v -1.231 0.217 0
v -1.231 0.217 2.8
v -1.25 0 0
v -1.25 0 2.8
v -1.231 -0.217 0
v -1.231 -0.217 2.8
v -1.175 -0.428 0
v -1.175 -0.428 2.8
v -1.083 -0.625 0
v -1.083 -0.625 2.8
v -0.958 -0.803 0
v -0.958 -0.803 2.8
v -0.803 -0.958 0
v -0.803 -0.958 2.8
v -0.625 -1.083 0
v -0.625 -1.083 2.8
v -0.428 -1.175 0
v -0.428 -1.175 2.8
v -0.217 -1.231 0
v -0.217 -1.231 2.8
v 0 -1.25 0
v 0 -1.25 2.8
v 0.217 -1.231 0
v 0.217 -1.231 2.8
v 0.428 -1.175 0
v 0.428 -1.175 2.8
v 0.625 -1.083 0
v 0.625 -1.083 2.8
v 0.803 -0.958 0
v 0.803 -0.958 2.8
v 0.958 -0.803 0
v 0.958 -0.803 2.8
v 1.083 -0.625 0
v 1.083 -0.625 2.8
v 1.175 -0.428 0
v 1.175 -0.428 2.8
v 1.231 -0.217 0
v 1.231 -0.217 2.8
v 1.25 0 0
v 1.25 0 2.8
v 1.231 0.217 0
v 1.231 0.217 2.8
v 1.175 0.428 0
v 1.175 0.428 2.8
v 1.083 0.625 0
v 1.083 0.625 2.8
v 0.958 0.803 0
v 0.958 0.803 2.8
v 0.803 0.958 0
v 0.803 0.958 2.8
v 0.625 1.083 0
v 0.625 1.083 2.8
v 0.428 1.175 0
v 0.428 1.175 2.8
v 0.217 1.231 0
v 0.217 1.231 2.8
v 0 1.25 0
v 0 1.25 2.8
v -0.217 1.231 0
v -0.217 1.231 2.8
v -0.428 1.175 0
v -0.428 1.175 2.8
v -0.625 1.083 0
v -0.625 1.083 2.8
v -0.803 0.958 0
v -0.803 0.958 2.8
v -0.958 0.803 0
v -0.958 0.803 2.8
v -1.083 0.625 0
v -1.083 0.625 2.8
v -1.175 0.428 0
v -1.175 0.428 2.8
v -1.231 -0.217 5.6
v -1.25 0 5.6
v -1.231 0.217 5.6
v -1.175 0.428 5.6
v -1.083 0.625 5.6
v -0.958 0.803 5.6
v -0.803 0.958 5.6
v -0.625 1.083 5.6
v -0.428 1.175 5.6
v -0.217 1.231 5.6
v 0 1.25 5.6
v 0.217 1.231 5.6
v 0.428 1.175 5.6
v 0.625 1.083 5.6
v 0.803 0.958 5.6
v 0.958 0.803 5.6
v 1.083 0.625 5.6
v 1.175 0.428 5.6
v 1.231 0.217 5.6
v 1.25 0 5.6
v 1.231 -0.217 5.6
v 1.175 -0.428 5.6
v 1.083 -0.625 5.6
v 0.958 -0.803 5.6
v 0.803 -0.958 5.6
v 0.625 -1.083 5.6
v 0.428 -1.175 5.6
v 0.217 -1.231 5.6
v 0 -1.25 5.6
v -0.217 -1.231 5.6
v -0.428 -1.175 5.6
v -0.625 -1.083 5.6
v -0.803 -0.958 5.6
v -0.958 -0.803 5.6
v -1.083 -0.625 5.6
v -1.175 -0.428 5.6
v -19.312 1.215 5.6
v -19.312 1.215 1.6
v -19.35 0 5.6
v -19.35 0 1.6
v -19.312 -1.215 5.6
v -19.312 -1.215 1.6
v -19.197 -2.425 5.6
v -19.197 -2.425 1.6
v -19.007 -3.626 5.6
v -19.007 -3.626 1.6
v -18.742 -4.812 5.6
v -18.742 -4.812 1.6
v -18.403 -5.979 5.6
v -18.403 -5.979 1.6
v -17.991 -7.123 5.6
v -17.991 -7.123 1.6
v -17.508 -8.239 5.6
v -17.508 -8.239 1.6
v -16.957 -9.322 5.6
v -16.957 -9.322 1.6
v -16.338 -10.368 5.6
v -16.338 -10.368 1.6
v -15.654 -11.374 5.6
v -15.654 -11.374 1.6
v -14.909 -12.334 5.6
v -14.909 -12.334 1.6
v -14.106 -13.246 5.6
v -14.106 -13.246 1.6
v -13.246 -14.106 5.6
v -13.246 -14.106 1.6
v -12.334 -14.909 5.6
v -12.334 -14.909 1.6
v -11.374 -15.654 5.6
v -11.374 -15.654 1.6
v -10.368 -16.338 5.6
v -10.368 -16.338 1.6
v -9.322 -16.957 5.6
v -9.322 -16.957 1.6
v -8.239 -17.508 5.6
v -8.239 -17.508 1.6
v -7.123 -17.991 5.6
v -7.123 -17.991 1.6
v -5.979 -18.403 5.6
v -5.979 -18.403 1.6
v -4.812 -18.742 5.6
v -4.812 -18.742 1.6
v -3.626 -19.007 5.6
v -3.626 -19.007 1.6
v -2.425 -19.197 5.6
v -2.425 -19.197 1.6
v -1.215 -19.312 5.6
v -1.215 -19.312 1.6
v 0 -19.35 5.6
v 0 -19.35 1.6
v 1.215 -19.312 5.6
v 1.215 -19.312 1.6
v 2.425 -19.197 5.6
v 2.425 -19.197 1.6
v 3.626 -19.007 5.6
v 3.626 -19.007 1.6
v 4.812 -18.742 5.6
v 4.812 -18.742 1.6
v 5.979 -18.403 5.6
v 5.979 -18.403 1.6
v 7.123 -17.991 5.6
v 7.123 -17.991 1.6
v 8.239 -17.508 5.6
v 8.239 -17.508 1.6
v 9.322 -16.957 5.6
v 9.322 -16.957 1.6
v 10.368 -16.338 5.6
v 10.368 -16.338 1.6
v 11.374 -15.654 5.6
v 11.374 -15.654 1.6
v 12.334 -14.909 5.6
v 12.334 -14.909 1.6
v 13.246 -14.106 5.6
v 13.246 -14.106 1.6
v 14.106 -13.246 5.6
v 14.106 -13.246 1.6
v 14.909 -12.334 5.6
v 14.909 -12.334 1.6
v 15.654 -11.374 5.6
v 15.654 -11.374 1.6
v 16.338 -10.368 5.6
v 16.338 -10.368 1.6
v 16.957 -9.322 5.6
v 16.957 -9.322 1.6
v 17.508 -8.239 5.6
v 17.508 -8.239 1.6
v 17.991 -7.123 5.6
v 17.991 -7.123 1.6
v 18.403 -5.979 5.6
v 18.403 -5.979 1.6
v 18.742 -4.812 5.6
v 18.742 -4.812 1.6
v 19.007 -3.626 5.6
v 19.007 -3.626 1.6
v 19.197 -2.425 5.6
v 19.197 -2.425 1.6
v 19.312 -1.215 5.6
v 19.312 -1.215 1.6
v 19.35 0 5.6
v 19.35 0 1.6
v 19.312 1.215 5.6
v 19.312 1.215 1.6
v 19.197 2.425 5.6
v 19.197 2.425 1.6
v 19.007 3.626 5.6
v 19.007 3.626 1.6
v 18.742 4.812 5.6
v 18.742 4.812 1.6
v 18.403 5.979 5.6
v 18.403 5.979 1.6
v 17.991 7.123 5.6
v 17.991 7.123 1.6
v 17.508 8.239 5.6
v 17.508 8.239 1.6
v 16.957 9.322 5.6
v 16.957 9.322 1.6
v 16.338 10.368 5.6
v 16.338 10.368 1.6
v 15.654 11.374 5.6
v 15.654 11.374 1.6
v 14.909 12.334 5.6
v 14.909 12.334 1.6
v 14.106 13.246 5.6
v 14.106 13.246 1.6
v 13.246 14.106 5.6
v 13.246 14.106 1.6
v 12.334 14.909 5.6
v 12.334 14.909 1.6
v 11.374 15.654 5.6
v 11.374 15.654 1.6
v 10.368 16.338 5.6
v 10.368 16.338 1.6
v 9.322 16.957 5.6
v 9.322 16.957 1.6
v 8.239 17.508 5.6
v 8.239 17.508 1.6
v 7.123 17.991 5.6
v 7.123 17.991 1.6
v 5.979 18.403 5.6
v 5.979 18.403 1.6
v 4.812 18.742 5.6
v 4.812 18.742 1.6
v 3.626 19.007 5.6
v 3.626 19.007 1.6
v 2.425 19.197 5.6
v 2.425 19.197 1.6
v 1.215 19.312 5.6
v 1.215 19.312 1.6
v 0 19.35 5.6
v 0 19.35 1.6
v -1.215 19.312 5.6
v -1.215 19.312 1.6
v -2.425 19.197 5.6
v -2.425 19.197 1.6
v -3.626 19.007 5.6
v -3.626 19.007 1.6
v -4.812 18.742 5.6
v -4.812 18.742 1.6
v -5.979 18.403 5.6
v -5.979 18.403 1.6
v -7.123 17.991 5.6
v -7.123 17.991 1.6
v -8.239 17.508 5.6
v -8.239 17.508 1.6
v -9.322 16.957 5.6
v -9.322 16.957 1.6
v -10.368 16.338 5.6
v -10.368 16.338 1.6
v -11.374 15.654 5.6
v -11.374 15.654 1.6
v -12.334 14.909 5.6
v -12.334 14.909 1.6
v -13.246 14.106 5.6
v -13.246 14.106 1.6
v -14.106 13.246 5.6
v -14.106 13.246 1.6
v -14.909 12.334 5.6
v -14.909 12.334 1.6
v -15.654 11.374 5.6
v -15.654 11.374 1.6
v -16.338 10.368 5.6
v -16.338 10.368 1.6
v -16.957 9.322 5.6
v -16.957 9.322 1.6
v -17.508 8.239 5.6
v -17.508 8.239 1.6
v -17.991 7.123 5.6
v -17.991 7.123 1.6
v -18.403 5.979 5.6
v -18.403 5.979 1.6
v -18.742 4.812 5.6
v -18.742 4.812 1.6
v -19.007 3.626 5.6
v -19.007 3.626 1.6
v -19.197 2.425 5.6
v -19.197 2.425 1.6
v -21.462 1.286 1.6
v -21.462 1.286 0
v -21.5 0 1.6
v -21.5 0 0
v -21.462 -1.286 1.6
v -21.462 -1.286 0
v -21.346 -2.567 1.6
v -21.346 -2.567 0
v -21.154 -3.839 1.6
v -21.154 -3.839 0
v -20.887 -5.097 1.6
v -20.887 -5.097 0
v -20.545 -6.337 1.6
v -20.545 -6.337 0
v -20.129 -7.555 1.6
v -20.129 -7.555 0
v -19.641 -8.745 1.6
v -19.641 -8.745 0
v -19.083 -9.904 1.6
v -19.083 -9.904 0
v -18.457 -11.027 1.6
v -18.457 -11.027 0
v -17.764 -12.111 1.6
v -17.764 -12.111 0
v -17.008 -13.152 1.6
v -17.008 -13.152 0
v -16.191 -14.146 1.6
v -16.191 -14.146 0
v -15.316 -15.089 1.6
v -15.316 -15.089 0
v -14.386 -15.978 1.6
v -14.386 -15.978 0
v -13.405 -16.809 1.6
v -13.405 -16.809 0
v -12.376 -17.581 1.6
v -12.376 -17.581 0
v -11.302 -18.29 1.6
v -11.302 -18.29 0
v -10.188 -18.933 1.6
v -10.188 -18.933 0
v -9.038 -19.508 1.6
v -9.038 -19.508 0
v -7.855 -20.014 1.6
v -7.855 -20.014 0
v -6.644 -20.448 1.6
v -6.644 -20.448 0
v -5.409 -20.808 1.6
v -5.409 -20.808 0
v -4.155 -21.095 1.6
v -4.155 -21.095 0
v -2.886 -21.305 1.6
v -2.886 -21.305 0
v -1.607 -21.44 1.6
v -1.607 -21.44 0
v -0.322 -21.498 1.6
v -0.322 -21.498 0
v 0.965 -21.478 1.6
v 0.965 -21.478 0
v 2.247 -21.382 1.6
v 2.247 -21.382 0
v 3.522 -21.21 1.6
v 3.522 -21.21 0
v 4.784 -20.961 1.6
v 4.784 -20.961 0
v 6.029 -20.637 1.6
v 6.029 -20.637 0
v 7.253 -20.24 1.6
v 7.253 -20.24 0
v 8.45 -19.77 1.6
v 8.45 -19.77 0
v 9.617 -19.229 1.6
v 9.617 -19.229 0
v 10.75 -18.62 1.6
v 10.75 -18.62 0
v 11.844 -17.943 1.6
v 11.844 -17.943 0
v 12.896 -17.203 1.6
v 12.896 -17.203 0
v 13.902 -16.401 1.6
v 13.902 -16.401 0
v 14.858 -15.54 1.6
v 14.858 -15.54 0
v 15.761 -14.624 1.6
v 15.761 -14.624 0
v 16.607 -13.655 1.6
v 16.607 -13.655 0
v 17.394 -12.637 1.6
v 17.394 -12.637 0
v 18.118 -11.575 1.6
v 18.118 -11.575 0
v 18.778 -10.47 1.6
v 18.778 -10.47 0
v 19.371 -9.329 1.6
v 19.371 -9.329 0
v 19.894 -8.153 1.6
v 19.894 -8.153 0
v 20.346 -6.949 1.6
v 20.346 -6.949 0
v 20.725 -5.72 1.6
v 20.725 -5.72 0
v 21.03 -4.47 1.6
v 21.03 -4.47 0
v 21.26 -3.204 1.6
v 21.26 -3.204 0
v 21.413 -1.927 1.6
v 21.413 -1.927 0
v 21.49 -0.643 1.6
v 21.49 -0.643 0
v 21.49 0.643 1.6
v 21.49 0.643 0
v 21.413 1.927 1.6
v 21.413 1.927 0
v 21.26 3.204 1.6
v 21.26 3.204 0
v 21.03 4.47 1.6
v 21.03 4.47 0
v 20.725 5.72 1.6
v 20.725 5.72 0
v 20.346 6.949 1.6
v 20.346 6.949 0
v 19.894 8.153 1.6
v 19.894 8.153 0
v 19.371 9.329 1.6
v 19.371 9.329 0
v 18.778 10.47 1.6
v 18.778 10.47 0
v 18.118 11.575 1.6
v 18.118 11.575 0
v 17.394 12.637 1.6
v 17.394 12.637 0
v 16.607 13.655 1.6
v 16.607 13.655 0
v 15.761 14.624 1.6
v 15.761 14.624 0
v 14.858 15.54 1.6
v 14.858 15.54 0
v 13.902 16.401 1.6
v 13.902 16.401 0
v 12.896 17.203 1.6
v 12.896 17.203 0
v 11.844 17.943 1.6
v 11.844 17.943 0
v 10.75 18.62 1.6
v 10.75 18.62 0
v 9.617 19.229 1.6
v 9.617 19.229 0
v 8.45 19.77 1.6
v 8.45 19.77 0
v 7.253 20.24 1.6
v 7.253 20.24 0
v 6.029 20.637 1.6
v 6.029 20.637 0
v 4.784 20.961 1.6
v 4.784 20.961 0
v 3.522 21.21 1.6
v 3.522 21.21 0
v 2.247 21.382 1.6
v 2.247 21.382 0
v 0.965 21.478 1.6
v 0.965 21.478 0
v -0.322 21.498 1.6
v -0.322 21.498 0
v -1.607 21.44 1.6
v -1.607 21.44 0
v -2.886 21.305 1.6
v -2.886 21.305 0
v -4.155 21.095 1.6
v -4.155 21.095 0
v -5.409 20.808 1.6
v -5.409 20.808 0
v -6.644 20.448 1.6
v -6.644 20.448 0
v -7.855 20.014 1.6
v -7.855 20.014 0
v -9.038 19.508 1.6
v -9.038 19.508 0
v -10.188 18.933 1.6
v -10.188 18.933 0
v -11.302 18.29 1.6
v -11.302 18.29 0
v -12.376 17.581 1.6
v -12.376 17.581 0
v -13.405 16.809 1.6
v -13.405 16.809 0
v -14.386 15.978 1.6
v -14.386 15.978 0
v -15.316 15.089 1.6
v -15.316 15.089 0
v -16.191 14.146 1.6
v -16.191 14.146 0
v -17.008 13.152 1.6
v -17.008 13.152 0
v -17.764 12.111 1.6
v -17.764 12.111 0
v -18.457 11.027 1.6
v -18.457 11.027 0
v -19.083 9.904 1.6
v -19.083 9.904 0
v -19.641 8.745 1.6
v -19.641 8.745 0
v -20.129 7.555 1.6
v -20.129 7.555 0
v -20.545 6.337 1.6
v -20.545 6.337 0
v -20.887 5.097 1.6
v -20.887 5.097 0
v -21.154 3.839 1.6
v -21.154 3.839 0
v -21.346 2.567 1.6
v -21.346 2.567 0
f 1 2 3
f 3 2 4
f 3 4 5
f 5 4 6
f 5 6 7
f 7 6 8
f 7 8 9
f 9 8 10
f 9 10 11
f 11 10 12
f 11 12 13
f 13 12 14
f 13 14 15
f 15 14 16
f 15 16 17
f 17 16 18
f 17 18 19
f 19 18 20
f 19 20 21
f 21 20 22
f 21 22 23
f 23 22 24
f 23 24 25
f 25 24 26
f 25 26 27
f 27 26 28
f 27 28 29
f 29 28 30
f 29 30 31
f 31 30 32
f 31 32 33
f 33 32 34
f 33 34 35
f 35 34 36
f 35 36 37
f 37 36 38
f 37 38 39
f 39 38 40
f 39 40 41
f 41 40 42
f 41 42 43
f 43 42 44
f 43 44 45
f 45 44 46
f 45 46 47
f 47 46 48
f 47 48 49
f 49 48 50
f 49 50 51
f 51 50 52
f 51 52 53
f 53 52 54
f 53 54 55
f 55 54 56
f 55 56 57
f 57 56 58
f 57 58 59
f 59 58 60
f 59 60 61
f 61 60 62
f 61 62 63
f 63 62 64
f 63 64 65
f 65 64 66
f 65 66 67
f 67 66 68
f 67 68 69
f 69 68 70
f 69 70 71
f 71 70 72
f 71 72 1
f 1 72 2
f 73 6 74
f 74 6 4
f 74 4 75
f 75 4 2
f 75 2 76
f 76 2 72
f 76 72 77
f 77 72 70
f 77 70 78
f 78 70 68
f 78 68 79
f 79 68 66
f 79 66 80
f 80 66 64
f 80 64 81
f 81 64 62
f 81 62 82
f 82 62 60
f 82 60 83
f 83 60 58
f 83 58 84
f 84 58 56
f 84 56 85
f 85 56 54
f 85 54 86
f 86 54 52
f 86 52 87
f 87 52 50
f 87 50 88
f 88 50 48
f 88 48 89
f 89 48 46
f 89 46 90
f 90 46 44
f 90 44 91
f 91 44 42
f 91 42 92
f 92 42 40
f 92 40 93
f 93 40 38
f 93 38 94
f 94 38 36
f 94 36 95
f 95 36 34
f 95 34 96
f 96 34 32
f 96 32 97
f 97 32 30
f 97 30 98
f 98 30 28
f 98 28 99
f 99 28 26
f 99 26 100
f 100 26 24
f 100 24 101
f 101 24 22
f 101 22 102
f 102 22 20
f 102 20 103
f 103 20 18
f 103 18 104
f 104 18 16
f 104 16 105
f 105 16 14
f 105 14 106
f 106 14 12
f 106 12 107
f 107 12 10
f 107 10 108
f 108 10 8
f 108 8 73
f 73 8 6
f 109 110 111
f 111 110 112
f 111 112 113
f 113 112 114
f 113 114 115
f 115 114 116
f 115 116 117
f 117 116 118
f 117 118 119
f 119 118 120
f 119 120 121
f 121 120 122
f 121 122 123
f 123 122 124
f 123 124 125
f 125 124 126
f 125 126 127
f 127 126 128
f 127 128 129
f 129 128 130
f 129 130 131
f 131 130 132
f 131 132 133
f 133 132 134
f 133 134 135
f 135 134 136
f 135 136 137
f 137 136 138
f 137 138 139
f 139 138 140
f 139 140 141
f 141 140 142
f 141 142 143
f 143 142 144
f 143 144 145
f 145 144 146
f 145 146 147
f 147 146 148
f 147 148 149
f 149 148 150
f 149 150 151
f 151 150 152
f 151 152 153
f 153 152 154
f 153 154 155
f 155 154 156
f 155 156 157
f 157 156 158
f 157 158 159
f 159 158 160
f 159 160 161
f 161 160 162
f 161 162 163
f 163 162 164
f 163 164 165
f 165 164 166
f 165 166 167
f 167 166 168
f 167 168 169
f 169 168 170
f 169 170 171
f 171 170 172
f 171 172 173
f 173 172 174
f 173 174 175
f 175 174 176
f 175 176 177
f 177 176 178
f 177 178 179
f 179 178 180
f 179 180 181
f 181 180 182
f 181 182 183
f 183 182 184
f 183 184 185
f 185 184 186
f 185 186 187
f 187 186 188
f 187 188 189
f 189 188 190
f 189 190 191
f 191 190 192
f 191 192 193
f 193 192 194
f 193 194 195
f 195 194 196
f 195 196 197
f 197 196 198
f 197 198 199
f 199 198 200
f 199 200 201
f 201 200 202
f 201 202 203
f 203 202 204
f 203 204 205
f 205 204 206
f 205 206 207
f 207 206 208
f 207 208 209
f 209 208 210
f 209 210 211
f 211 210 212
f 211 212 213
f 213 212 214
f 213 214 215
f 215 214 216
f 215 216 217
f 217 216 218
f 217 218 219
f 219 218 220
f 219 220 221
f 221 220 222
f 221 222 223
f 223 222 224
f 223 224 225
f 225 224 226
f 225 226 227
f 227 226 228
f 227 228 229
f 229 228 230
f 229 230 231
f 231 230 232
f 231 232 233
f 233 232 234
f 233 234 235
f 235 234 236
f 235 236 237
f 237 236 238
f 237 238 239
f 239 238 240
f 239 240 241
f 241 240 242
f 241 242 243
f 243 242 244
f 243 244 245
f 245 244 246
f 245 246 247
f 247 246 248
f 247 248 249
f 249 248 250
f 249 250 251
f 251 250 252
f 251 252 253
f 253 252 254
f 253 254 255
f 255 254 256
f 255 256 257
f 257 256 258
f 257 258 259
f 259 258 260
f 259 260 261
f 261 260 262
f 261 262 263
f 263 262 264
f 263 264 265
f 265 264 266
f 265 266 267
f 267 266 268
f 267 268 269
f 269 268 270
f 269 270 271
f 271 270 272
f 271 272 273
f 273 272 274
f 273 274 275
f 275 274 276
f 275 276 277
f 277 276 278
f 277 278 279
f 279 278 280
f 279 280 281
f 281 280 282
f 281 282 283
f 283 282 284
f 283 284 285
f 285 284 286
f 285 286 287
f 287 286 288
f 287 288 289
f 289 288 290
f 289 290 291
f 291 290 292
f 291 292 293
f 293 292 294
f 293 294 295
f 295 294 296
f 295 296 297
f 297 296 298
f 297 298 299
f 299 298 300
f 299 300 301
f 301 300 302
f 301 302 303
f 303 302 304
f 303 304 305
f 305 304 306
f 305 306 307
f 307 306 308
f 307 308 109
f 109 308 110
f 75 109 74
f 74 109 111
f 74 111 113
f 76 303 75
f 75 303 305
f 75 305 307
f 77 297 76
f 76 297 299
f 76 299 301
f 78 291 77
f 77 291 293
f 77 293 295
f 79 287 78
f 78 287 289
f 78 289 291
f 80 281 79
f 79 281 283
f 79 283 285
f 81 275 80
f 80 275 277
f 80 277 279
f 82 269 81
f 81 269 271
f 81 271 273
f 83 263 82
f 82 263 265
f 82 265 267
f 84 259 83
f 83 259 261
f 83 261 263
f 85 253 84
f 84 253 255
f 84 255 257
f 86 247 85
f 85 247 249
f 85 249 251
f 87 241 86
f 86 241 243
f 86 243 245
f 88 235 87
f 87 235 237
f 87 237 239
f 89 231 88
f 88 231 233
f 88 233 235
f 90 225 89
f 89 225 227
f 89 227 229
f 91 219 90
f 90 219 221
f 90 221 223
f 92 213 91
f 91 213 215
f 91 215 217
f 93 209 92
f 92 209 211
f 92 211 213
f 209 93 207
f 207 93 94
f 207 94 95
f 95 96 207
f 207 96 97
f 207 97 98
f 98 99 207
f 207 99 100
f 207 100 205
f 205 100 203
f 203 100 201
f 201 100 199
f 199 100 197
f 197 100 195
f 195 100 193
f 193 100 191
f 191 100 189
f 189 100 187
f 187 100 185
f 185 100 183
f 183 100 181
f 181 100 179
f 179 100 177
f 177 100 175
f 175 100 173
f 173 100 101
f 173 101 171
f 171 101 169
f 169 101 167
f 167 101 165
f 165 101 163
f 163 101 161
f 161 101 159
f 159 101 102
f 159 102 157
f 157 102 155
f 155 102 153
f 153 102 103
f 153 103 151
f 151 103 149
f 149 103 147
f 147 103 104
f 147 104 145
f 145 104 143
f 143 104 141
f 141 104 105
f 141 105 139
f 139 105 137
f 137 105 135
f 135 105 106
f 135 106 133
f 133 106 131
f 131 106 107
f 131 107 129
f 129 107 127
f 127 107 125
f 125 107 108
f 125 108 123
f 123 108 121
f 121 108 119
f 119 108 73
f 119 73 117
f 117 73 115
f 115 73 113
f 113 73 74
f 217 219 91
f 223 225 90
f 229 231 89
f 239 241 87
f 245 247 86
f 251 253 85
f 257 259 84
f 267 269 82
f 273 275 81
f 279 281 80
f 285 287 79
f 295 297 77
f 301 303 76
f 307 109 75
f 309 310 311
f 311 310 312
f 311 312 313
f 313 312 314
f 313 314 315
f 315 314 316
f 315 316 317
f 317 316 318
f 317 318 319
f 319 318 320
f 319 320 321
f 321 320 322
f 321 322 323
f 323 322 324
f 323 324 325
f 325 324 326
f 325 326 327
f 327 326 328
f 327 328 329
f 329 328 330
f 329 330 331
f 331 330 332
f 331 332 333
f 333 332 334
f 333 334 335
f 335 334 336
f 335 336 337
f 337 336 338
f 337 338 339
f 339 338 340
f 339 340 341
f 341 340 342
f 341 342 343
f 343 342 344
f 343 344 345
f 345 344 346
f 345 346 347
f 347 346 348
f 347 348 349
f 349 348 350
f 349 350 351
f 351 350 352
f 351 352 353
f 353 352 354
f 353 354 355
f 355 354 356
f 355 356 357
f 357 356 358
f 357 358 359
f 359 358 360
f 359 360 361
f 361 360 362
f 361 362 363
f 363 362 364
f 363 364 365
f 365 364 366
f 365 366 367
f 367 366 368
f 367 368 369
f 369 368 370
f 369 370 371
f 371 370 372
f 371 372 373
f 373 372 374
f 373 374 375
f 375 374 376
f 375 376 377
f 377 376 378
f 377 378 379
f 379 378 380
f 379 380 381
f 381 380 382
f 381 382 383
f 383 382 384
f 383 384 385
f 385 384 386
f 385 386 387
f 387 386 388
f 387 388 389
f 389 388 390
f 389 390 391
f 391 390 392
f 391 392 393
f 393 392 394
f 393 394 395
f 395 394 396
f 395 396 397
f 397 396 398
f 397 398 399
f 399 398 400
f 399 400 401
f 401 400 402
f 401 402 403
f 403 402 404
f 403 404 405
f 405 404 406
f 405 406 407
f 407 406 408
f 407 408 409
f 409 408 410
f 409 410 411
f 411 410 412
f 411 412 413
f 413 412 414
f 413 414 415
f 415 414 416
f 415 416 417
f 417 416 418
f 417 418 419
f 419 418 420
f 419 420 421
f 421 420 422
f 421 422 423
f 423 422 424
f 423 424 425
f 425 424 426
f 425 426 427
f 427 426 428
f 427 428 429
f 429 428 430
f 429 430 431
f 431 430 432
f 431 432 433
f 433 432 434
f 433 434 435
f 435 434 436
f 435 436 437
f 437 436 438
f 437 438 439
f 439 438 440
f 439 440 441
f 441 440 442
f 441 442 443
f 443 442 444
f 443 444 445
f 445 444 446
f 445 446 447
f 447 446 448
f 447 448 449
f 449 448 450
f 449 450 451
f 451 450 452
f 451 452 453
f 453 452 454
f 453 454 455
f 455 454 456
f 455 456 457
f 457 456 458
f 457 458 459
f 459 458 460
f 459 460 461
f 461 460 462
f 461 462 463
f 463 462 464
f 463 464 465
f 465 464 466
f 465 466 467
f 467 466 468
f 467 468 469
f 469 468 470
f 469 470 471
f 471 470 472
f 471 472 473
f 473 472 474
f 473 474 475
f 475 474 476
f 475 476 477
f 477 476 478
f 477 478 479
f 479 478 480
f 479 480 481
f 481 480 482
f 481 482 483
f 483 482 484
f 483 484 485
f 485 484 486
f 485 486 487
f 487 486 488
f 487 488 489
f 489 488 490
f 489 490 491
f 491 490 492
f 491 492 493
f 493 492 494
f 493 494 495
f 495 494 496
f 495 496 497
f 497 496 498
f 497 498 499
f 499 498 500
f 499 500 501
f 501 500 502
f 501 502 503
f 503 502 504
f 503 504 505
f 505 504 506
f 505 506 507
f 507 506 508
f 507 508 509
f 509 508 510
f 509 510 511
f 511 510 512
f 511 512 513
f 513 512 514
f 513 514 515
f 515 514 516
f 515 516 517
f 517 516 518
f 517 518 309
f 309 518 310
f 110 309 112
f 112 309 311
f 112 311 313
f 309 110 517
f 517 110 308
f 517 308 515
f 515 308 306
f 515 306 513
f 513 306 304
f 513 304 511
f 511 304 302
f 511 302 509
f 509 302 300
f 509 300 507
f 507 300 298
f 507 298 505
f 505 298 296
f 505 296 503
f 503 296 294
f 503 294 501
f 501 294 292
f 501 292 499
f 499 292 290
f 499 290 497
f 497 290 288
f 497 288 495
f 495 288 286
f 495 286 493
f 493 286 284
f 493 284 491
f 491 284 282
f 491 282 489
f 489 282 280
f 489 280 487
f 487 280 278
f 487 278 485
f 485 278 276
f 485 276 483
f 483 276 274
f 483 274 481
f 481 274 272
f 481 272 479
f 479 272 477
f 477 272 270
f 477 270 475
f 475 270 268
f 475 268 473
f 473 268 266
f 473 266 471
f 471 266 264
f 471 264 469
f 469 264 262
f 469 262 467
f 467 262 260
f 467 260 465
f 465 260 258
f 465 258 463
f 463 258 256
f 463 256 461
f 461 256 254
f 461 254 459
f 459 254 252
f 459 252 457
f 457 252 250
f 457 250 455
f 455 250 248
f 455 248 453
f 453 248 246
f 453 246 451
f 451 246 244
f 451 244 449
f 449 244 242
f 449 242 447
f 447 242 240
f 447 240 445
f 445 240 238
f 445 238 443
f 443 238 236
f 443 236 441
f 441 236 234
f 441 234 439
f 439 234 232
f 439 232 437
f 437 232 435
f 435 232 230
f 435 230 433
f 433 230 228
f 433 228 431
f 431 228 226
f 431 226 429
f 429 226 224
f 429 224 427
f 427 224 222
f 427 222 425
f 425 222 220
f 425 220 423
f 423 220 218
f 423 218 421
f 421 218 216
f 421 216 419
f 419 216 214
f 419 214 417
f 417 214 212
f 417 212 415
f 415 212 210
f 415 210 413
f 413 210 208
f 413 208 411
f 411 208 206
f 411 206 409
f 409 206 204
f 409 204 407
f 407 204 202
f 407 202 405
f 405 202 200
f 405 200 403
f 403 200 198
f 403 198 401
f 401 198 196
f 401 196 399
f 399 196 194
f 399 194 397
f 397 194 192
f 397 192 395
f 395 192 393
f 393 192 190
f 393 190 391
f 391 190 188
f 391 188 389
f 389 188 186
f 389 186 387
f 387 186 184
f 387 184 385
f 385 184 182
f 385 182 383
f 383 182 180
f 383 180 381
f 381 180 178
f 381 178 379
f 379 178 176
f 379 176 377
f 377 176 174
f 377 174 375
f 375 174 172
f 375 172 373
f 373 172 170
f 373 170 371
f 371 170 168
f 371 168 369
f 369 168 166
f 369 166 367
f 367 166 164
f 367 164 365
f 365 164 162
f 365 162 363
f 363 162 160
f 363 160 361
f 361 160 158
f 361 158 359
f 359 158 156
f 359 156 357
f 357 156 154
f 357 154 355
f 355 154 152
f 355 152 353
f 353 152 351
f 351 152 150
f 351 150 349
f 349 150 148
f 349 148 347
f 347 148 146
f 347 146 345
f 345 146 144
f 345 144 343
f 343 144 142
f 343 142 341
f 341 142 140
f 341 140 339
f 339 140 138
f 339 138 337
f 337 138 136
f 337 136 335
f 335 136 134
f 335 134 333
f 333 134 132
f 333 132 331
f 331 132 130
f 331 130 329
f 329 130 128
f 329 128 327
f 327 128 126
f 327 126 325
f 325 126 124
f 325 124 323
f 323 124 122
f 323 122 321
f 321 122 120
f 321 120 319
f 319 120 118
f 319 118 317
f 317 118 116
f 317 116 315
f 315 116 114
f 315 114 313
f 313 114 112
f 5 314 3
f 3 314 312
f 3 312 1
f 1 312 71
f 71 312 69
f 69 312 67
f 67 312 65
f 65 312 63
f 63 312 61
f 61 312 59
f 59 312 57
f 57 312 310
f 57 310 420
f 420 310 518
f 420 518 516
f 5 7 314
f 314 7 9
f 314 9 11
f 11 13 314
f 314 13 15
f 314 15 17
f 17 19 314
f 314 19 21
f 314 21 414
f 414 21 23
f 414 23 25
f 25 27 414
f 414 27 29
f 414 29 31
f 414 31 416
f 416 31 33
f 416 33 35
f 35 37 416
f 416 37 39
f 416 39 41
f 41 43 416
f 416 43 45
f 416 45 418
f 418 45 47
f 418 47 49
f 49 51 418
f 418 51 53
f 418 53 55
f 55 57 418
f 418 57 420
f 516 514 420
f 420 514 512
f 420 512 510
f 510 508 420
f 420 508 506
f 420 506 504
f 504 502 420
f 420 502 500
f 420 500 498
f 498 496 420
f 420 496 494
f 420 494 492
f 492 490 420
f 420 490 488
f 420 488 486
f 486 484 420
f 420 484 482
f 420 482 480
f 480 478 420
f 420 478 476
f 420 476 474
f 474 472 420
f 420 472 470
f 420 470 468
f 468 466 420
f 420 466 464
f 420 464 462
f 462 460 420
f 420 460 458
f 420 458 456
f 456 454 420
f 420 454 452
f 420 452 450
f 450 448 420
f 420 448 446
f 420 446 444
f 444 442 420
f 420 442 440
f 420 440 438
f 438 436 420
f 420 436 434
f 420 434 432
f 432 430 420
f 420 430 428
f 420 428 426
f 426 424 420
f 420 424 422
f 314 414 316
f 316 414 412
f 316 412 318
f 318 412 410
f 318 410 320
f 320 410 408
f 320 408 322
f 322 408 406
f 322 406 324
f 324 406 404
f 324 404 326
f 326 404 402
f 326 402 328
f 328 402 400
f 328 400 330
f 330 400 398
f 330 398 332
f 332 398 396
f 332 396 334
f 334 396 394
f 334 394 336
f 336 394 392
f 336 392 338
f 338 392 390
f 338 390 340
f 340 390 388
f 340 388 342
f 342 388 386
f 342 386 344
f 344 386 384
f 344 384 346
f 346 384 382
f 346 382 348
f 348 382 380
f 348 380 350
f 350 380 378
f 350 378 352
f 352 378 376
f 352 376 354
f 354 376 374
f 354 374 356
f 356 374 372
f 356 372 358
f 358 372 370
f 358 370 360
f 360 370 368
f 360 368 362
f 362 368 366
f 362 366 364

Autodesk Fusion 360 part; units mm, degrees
sketch "Flange" plane through (0, 0, 0) normal (0, 0, 1) x (1, 0, 0)
  circle A0 centre (0, 0) radius 21.5
extrude "Flange (1)" add sketch "Flange" along normal blind 1.6
ref_plane "WorkPlane1" through (0, 0, 1.6) normal (0, 0, 1) x (1, 0, 0)
sketch "Press-fit body" plane through (0, 0, 1.6) normal (0, 0, 1) x (1, 0, 0)
  circle A0 centre (0, 0) radius 19.35
extrude "Press-fit body (1)" add sketch "Press-fit body" along normal blind 4
sketch "Puller pilot" plane through (0, 0, 0) normal (0, 0, 1) x (1, 0, 0)
  circle A0 centre (0, 0) radius 1.25
extrude "Puller pilot (1)" cut sketch "Puller pilot" along normal mid plane 11.2
